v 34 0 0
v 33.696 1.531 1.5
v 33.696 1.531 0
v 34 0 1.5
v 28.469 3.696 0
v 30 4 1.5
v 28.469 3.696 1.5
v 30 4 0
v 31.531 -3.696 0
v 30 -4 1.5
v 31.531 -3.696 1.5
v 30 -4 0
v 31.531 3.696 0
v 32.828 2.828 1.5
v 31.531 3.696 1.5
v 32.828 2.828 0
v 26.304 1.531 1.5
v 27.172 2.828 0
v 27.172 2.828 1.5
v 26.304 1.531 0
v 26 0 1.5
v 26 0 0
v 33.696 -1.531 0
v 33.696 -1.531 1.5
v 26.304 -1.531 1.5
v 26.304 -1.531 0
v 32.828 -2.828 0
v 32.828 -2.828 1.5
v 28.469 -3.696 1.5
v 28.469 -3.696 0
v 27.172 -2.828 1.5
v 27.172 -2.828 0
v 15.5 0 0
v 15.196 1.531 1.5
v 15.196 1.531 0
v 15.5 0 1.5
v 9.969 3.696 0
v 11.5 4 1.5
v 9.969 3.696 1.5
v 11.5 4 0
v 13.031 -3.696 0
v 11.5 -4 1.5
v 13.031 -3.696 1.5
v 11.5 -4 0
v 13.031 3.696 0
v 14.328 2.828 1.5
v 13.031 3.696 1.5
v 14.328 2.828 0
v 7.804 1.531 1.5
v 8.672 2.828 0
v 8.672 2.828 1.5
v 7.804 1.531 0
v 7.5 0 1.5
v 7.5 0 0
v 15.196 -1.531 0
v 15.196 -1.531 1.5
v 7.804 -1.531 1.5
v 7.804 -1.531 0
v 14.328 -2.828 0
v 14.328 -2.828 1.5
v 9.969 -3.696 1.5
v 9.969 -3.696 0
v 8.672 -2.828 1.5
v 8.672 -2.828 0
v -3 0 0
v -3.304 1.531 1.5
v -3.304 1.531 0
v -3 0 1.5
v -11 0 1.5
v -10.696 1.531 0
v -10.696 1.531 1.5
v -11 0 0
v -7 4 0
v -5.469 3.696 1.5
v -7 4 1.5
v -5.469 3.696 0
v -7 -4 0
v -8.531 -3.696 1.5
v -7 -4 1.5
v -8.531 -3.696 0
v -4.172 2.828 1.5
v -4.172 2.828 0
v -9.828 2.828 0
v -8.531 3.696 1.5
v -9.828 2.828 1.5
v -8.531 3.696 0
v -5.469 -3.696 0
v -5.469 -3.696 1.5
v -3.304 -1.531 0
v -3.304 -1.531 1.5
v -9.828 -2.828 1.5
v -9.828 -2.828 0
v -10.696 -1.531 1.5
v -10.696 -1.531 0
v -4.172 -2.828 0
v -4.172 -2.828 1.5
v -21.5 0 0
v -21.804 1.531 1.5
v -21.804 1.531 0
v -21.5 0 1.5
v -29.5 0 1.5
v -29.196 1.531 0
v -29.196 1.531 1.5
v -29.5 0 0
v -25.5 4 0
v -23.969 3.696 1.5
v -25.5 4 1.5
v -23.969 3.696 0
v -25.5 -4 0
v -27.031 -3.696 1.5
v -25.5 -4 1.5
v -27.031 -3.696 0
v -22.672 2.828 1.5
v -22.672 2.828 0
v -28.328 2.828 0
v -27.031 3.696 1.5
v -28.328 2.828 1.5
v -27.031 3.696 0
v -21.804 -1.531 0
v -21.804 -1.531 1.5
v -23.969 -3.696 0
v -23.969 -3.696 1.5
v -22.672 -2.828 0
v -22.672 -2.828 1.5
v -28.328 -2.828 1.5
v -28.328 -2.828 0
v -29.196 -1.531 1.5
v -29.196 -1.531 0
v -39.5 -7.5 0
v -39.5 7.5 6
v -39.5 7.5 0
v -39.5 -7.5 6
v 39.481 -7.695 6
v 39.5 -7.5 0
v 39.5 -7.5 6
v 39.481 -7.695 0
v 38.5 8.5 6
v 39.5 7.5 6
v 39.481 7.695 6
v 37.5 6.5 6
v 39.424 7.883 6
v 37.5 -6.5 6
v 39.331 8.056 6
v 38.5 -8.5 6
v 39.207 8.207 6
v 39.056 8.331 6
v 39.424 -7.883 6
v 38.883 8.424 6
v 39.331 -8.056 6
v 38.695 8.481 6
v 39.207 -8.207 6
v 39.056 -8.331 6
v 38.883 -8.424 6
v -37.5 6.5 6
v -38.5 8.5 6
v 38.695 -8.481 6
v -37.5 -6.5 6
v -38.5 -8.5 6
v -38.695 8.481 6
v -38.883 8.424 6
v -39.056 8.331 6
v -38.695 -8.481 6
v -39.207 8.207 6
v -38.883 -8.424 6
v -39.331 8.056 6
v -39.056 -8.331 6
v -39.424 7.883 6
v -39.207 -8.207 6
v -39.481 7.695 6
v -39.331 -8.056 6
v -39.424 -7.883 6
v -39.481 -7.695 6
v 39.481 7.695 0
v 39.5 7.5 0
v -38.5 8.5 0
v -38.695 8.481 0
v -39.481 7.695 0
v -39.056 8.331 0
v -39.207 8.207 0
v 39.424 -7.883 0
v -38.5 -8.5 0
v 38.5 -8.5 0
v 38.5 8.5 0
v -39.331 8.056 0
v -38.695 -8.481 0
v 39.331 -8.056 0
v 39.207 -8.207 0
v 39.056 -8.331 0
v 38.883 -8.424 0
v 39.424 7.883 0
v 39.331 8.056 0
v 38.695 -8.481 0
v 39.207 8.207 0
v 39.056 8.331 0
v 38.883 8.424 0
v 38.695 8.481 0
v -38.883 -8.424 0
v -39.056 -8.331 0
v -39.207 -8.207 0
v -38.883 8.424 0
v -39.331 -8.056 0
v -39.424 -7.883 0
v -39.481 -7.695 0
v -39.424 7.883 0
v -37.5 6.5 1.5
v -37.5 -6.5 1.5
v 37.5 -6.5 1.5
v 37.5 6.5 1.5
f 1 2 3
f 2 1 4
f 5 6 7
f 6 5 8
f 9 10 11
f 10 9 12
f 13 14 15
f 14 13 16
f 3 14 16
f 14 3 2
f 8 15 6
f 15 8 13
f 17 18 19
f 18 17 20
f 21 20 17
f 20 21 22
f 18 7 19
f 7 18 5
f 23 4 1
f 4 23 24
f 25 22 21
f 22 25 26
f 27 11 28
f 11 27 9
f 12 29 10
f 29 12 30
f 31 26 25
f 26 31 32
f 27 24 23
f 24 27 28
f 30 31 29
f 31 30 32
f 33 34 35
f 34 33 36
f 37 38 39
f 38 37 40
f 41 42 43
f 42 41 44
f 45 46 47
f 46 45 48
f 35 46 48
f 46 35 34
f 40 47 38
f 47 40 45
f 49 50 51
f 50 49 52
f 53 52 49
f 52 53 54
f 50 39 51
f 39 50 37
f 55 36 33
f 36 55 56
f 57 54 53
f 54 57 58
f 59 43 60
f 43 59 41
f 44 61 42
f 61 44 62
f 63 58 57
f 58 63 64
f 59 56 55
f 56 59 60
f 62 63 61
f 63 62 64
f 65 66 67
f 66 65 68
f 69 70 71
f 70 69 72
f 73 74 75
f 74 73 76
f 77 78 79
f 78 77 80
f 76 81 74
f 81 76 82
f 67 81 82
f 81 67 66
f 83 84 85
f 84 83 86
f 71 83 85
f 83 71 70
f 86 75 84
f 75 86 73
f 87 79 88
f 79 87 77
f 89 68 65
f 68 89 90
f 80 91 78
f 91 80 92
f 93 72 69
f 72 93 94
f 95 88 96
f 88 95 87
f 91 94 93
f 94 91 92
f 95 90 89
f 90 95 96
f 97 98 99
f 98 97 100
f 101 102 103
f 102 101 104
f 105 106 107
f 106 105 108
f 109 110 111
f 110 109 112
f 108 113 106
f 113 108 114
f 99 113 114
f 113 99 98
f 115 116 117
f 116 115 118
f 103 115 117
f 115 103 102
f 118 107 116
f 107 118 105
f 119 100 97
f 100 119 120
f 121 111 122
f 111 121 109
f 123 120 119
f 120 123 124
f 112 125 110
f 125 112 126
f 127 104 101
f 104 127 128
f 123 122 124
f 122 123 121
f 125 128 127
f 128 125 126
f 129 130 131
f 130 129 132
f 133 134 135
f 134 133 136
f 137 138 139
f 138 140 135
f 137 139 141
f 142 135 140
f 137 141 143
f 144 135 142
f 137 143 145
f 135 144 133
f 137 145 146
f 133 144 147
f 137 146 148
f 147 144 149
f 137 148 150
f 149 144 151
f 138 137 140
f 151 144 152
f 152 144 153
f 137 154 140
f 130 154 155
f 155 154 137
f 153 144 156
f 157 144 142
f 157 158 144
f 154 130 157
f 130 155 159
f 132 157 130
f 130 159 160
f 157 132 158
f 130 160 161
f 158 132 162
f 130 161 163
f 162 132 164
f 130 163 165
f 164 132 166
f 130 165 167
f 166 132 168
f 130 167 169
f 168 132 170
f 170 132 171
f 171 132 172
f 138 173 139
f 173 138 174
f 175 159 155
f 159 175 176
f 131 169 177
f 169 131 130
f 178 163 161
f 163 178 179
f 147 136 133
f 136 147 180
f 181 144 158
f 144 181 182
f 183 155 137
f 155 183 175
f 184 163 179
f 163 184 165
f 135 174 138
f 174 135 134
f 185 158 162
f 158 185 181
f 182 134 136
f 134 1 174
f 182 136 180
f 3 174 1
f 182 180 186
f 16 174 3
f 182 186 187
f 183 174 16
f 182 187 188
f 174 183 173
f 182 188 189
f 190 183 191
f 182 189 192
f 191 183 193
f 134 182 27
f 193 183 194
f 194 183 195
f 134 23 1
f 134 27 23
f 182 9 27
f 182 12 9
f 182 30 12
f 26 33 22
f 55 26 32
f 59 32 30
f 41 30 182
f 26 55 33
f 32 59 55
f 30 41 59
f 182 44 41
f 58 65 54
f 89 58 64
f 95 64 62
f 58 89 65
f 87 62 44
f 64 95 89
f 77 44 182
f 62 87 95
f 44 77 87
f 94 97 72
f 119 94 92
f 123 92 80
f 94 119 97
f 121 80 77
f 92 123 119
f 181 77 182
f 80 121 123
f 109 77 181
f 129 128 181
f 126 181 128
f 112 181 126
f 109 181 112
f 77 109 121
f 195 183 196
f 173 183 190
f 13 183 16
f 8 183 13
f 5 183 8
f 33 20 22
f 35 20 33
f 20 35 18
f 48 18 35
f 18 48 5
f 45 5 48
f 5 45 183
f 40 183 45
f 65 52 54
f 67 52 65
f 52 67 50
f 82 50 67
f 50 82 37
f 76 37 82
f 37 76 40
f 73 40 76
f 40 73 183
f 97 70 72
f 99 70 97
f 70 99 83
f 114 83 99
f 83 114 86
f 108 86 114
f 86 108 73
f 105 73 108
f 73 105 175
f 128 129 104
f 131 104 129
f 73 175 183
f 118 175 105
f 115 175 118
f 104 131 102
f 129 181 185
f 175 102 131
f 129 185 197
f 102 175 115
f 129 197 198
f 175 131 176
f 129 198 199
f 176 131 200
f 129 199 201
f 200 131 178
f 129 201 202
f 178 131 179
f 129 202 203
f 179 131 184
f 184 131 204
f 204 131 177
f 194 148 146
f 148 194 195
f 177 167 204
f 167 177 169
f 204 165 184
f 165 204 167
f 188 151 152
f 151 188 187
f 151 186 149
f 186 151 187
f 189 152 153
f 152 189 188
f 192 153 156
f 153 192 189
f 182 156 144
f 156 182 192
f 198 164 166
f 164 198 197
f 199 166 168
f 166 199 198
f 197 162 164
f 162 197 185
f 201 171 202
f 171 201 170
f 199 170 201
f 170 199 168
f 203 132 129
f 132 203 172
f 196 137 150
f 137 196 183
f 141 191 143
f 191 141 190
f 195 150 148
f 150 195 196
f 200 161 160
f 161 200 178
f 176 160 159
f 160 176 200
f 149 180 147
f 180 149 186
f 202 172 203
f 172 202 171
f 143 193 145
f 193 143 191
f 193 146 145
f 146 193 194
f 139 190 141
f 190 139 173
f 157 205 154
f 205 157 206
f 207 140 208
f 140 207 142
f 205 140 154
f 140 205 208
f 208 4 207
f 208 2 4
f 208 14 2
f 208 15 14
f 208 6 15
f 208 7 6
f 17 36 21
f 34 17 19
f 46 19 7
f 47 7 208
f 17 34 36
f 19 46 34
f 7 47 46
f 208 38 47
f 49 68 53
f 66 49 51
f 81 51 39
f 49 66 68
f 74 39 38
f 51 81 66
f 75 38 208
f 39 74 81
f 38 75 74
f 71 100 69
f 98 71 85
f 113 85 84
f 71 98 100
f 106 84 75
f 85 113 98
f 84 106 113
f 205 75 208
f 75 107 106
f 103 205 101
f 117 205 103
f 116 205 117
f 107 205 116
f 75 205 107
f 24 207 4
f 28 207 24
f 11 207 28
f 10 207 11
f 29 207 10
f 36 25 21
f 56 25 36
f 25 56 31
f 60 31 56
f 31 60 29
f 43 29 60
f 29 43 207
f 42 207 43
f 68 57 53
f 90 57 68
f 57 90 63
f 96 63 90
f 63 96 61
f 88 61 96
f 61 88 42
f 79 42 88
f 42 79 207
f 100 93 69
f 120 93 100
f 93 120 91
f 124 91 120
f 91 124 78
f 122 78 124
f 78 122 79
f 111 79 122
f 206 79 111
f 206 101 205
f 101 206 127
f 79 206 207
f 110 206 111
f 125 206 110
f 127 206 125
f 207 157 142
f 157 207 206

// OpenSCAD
// RP2040 PCB parameters
pcb_length = 105;          // RP2040 PCB length (mm)
pcb_width = 60;            // RP2040 PCB width (mm)
pcb_thickness = 1.6;       // Standard PCB thickness (mm)
pcb_clearance = 1;         // Space around PCB (mm)
pcb_height_clearance = 8;  // Space above PCB for components (mm)

// Overall cover dimensions addinh Quad Encoder
qencoder_width = 25;      // Width of Quad Encoder (mm)
cover_length = 105 - 1;   // Total length of cover (mm)  
cover_width = 60 + qencoder_width;         // Total width of cover (mm)
cover_thickness = 2;       // Thickness of top plate (mm)
corner_radius = 1;         // Rounded corner radius (mm)

// Key switch parameters (Cherry MX compatible)
key_switch_size = 14;      // Square hole size for key switches (mm)
key_switch_spacing = 19.05; // Center-to-center spacing (0.75" standard)
key_rows = 4;              // Number of rows
key_cols = 3;              // Number of columns

// Key switch grid positioning (relative to cover center)
keys_offset_x = 0;         // X offset of key grid center
keys_offset_y = -13;     // Y offset of key grid center (negative = toward bottom)

// LCD/OLED display parameters
lcd_width = 31;            // Width of LCD cutout (mm)
lcd_height = 17;           // Height of LCD cutout (mm)
lcd_corner_radius = 1;     // Corner radius for LCD hole
//lcd_offset_x = -11;        // X position relative to center
lcd_offset_x = 11;        // X position relative to center
lcd_offset_y = 41;         // Y position relative to center (positive = toward top)

// Cover base Encoder hole
encoder_hole_size = 13;         // Square hole size for encoder + 1 mm space(mm)
encoder_hole_offset_x = -18.5;   // Hole X position relative to center
encoder_hole_offset_y = 38.5;   // Hole Y position relative to center
encoder_hole_z = 5;             // Hole encoder shaft height

// Rotary encoder parameters and relative to shaft center
encoder_shaft_diameter = 6;
encoder_size = 13;         // Square hole size for encoder + 1 mm space(mm)
//encoder_offset_x = 18.5 ;   // X position relative to center
encoder_offset_x = -48.5 - qencoder_width / 2;   // X position relative to center
encoder_offset_y = 38.5;   // Y position relative to center
encoder_shaft_z = 7;      // Encoder shaft height
encoder_shaft_clearance = 2; // General clearance for 3D printing (mm)

shaft_wall_width= 2;       // 
shaft_corner_radius = 1;   // Corner radius for encoder hole

// Mounting and clearance
wall_thickness = 2;        // Wall thickness for sides (if adding later)
clearance = 0.2;           // General clearance for 3D printing (mm)

// =============================================================================
// MAIN OBJECT
// =============================================================================

difference() {
            
    // Wrap the open encoder shaft
    quad_encoder_wrap();                        

    quad_encoder_hole();                       

    // Cut out encoder shaft hole
    encoder_round_hole();    
}


quad_encoder_offset_x = 0;
quad_encoder_offset_y = 0;

quad_encoder_z = 4;

wall_width = 2;
quad_encoder_size_x = 75/2 + wall_width;
quad_encoder_size_y = 13/2 + wall_width;

quad_encoder_hole_x = 75;
quad_encoder_hole_y = 13;

encoder_z = quad_encoder_z - shaft_wall_width;  // 2mm Shaft top cover


// Seperated: Create rotary encoder hole through cover base and shaft cibe
module quad_encoder_wrap() {
    
    translate([quad_encoder_offset_x, quad_encoder_offset_y, 0]) {
        // Square hole with slightly rounded corners for encoder
        hull() {
            // Four corner cylinders for rounded square
            translate([+(quad_encoder_size_x - shaft_corner_radius), -(quad_encoder_size_y - shaft_corner_radius), 0])
                cylinder(h = cover_thickness + quad_encoder_z, r = shaft_corner_radius, $fn = 32);
            
            translate([-(quad_encoder_size_x - shaft_corner_radius), -(quad_encoder_size_y - shaft_corner_radius), 0])
                cylinder(h = cover_thickness + quad_encoder_z, r = shaft_corner_radius, $fn = 32);
            
            translate([+(quad_encoder_size_x - shaft_corner_radius), (quad_encoder_size_y - shaft_corner_radius), 0])
                cylinder(h = cover_thickness + quad_encoder_z, r = shaft_corner_radius, $fn = 32);
            
            translate([-(quad_encoder_size_x - shaft_corner_radius), (quad_encoder_size_y - shaft_corner_radius), 0])
                cylinder(h = cover_thickness + quad_encoder_z, r = shaft_corner_radius, $fn = 32);
        }
    }
}

// Encoder hole in cover base
module quad_encoder_hole() {
    
    color("blue") translate([quad_encoder_offset_x, quad_encoder_offset_y, 5]) {
        // Square hole with slightly rounded corners for encoder
        cube([quad_encoder_hole_x, quad_encoder_hole_y, 7], center = true);
    }    
}


// Seperated: Create Encoder 6mm Shaft through hole
module encoder_round_hole() {

    encoder_count = 4;
    x_offset_start = 30;
    x_offset_incr = 18.5;
    
    for (row = [0 : encoder_count - 1]) {

        color("red") translate([x_offset_start - x_offset_incr * row, 0, -0.5]) {
            // Through hole for encoder shaft
            cylinder(
                h = encoder_shaft_z + 2, 
                d = encoder_shaft_diameter + 2, 
                $fn = 16
            );        
        }
        
    }
}
